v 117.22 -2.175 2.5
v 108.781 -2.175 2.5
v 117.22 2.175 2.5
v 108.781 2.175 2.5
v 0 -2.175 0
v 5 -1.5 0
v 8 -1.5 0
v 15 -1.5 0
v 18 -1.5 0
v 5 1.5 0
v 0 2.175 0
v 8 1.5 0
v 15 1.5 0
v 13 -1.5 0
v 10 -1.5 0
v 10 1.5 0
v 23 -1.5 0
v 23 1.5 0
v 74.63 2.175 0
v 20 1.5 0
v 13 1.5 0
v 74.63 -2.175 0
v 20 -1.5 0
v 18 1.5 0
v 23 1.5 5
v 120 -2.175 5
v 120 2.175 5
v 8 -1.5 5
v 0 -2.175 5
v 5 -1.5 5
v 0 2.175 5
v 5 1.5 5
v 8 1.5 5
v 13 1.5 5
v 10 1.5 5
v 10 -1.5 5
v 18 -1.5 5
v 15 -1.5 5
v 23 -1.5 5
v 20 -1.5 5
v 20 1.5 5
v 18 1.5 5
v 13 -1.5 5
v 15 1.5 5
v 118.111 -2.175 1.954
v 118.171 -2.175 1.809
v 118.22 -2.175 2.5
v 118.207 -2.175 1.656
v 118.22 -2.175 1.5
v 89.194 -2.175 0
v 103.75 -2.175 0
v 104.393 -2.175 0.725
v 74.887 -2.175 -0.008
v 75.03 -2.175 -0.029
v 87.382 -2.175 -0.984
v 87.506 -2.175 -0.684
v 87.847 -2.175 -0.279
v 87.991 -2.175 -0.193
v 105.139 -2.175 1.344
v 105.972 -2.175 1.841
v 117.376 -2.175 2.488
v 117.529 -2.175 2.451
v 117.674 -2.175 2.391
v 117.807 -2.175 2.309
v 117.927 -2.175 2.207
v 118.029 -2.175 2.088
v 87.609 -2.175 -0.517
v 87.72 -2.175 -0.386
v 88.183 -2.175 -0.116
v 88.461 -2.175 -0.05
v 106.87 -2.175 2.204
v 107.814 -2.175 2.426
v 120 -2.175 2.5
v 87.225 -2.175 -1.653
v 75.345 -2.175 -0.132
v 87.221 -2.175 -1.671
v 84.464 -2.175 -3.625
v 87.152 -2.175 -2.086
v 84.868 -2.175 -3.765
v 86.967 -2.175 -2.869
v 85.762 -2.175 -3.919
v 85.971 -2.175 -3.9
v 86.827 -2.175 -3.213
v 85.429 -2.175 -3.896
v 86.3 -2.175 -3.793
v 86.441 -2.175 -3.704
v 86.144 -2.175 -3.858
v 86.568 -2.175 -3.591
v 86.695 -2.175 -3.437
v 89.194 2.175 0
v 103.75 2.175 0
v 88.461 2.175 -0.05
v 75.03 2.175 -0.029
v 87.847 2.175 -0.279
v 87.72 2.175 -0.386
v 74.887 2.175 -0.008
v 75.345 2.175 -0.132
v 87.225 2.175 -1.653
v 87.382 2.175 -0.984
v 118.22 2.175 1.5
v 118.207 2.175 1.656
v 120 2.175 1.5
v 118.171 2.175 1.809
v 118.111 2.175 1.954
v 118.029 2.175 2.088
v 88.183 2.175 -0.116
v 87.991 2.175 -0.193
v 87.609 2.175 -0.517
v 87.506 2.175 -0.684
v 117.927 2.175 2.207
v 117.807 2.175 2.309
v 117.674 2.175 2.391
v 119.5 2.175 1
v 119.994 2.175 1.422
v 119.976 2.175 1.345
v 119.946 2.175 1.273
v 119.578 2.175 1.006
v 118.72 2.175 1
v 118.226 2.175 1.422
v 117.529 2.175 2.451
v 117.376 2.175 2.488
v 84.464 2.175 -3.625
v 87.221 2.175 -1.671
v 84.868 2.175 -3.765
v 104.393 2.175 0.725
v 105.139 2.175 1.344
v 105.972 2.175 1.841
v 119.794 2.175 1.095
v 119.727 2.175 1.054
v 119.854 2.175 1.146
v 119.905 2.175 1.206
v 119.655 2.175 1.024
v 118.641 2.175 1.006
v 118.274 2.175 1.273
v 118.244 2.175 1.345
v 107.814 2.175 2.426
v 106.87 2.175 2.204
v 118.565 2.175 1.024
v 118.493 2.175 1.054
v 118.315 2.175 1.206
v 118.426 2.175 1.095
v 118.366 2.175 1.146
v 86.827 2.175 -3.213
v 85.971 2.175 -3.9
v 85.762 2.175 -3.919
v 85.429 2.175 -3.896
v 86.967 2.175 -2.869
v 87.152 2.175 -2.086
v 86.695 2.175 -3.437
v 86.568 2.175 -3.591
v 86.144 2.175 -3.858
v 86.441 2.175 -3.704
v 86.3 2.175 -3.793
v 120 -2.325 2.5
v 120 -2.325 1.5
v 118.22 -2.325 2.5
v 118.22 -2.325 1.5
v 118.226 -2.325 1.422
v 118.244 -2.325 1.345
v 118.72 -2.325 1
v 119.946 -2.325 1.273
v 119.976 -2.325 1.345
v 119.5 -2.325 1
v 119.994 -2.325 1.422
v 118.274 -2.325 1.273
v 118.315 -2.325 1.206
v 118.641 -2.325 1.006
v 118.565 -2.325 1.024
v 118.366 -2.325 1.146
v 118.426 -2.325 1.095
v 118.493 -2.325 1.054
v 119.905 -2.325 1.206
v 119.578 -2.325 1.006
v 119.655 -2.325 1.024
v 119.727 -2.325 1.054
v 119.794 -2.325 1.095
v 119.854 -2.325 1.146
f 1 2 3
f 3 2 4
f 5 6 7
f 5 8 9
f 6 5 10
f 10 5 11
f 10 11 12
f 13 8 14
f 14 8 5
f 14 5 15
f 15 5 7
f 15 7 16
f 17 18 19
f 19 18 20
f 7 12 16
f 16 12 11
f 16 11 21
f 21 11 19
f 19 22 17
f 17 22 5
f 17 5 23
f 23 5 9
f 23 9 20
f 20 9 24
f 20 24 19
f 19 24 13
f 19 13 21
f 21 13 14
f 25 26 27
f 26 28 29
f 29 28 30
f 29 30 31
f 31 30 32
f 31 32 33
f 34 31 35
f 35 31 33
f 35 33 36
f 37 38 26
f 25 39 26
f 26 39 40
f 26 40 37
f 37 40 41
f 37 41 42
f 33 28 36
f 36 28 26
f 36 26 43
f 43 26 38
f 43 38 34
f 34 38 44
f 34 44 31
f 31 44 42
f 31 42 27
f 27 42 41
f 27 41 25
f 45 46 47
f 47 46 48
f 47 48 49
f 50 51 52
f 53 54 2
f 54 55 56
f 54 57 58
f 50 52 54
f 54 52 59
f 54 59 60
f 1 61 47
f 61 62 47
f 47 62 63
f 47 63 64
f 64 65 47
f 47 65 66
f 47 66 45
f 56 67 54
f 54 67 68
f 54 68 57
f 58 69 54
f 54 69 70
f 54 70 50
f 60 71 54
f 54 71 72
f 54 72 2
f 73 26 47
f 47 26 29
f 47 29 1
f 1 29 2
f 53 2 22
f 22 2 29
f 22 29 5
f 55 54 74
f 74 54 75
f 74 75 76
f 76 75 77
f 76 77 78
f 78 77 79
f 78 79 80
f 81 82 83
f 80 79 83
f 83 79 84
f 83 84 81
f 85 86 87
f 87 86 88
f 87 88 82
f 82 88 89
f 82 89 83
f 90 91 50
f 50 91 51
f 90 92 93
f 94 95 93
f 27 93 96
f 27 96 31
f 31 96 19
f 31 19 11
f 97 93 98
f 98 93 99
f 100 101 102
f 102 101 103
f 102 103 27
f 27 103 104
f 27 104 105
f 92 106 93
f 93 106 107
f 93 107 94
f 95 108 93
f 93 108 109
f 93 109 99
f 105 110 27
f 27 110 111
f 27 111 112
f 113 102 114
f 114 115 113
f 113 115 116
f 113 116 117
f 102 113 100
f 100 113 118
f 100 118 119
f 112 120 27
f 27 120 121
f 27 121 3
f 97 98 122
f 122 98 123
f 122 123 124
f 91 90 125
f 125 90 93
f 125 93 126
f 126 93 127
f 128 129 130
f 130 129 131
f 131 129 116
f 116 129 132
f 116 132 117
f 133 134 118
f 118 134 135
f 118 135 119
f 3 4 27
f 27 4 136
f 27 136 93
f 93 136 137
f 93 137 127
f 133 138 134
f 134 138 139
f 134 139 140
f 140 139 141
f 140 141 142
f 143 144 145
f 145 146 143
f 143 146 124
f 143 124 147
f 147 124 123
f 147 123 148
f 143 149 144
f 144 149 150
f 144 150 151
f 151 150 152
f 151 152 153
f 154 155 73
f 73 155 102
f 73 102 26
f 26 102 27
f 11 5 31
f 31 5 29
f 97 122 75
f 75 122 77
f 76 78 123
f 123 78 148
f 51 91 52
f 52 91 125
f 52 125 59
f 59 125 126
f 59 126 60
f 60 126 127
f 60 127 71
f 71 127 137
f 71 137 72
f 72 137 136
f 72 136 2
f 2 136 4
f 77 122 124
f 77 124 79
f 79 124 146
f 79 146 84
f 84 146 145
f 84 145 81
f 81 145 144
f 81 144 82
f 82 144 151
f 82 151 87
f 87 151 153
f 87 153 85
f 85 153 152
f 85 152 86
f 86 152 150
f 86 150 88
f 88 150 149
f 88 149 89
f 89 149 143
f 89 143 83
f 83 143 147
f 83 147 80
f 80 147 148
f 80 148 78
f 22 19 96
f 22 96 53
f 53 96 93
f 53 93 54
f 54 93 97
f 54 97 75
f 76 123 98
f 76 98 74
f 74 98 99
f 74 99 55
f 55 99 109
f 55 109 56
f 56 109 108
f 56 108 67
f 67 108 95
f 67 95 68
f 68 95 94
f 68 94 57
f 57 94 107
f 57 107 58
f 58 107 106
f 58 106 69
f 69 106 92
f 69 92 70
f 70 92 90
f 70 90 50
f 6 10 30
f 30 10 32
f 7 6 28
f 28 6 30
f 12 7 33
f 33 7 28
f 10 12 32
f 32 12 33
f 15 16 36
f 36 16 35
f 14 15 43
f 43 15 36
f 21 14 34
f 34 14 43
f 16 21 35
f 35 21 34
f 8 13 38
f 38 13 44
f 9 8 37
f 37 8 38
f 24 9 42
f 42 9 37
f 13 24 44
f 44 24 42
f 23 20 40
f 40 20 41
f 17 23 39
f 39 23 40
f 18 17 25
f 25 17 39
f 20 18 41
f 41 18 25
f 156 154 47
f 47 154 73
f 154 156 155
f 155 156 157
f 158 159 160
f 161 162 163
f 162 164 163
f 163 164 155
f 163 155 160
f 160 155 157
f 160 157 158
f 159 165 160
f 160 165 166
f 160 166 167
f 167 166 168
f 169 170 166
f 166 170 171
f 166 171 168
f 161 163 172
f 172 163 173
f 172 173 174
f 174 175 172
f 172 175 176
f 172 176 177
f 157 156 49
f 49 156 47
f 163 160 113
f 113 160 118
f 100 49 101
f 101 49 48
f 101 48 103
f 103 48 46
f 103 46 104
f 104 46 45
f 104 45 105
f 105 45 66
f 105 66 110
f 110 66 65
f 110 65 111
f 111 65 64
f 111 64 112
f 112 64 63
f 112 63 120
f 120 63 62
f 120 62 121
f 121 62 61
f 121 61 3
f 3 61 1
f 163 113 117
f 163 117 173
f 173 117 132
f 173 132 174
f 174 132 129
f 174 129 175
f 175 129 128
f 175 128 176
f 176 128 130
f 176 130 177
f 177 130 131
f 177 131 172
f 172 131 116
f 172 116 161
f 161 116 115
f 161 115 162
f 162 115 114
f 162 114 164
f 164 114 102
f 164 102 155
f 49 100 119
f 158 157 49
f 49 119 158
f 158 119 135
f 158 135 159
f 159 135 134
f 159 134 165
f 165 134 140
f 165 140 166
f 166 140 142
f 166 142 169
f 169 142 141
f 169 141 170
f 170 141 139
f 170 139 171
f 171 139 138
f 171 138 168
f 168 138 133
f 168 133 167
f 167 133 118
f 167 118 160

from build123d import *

# Parameters (mm, degrees)
ESBO_O1_W                = 5
ESBO_O1_H                = 4.35
RESSALTO_EXTRUS_O1_DEPTH = 120
RESSALTO_EXTRUS_O2_DEPTH = 4.35
CUT_EXTRUDE2_DEPTH       = 10
CUT_EXTRUDE3_DEPTH       = 10
SKETCH17_W               = 1.7804771699968711
SKETCH17_H               = 4.499999999999998
BOSS_EXTRUDE2_DEPTH      = 1.5
FILLET8_R                = 1
FILLET9_R                = 0.5


with BuildPart() as part:
    # Esboço1 → Ressalto-extrusão1 (new body)
    with BuildSketch(Plane(origin=(0, 0, 0), x_dir=(0, 0, -1), z_dir=(1, 0, 0))):
        with Locations((-2.5000000000000098, 0)):
            Rectangle(ESBO_O1_W, ESBO_O1_H)
    extrude(amount=RESSALTO_EXTRUS_O1_DEPTH)

    # Esboço2 → Ressalto-extrusão2 (add)
    with BuildSketch(Plane(origin=(0, 2.175, 0), x_dir=(1, 0, 0), z_dir=(0, 1, 0))):
        Polygon((75, -9.63e-15), (87.5, -9.63e-15), (86.75, 4.49999999999999), align=None)
    extrude(amount=-RESSALTO_EXTRUS_O2_DEPTH)

    # Sketch12 → Cut-Extrude2 (cut)
    with BuildSketch(Plane(origin=(0, 2.175, 0), x_dir=(1, 0, 0), z_dir=(0, 1, 1.7e-16))):
        with BuildLine():
            Line((120, -2.5000000000000098), (108.78052366211932, -2.500000000000011))
            ThreePointArc((108.78052366211932, -2.500000000000011), (105.97177980074898, -1.8405473191538975), (103.75, -2.99e-15))
            Line((103.75, -2.99e-15), (120, -9.22e-15))
            Line((120, -9.22e-15), (120, -2.5000000000000098))
        make_face()
    extrude(amount=-CUT_EXTRUDE2_DEPTH, mode=Mode.SUBTRACT)

    # Fillet5
    # a fillet whose section is not a circle: 2 mm, written as the material it takes off along each edge
    with BuildSketch(Plane(origin=(86.75, 8.293980956389628, -4.49999999999999), x_dir=(-0.9338567516961642, 0, 0.35764726660704255), z_dir=(0, -1, 0))) as fillet5_piece_1:
        with BuildLine():
            Bezier((2.4475923825558348, 0), (6.4e-16, -1.66e-15), (0.48769743446495956, -2.3985119727784827), weights=[1, 1.2654991217782485, 1])
            Line((0.48769743446495956, -2.3985119727784827), (0, 0))
            Line((0, 0), (2.4475923825558348, 0))
        make_face()
    extrude(amount=16.587961912779257, mode=Mode.SUBTRACT)

    # Fillet6
    # a fillet whose section is not a circle: 2 mm, written as the material it adds along each edge
    with BuildSketch(Plane(origin=(75, 2.175, 9.63e-15), x_dir=(-1, 0, -2e-17), z_dir=(0, -1, 0))) as fillet6_piece_1:
        with BuildLine():
            Bezier((0.36987979207182775, 0), (0, 1e-17), (-0.3454147411422639, 0.13228649660767453), weights=[1, 1.966650325653325, 1])
            Line((-0.3454147411422639, 0.13228649660767453), (0, 0))
            Line((0, 0), (0.36987979207182775, 0))
        make_face()
    extrude(amount=4.35)

    # Fillet7
    # a fillet whose section is not a circle: 2 mm, written as the material it adds along each edge
    with BuildSketch(Plane(origin=(87.5, 2.175, 9.63e-15), x_dir=(1, 0, -1e-17), z_dir=(0, -1, 0))) as fillet7_piece_1:
        with BuildLine():
            Bezier((1.69425417676608, 0), (0, -1e-17), (-0.2785336708982129, -1.671202025389285), weights=[1, 1.5260399649454515, 1])
            Line((-0.2785336708982129, -1.671202025389285), (0, 0))
            Line((0, 0), (1.69425417676608, 0))
        make_face()
    extrude(amount=4.35)

    # Sketch16 → Cut-Extrude3 (cut)
    with BuildSketch(Plane.XY):
        Polygon((23.000000000000007, -1.4999999999999984), (20.000000000000007, -1.499999999999998), (20.000000000000004, 1.500000000000001), (23.000000000000007, 1.5000000000000013), align=None)
        Polygon((18.000000000000004, -1.4999999999999978), (15.000000000000002, -1.4999999999999984), (14.999999999999998, 1.5000000000000007), (18.000000000000004, 1.5000000000000013), align=None)
        Polygon((13.000000000000004, -1.4999999999999958), (10.000000000000002, -1.4999999999999964), (10.000000000000005, 1.5000000000000029), (13.000000000000007, 1.5000000000000036), align=None)
        Polygon((8, -1.4999999999999956), (5.000000000000001, -1.4999999999999953), (4.999999999999997, 1.500000000000004), (7.9999999999999964, 1.5000000000000038), align=None)
    extrude(amount=CUT_EXTRUDE3_DEPTH, mode=Mode.SUBTRACT)

    # Sketch17 → Boss-Extrude2 (add)
    with BuildSketch(Plane(origin=(2.9e-16, -4.3e-16, 2.500000000000023), x_dir=(-1, 0, 0), z_dir=(0, 1.7e-16, -1))):
        with Locations((-119.10976141500157, -0.07499999999999951)):
            Rectangle(SKETCH17_W, SKETCH17_H)
    extrude(amount=BOSS_EXTRUDE2_DEPTH)

    # Fillet8
    fillet8_edges = [part.edges().sort_by_distance(p)[0] for p in [
        (118.21952283000314, -4.3e-16, 2.500000000000023),
    ]]
    fillet(fillet8_edges, radius=FILLET8_R)

    # Fillet9
    fillet9_edges = [part.edges().sort_by_distance(p)[0] for p in [
        (120, -0.07499999999999947, 1.000000000000023),
        (118.21952283000314, -0.07499999999999991, 1.000000000000023),
    ]]
    fillet(fillet9_edges, radius=FILLET9_R)


solid = part.part
